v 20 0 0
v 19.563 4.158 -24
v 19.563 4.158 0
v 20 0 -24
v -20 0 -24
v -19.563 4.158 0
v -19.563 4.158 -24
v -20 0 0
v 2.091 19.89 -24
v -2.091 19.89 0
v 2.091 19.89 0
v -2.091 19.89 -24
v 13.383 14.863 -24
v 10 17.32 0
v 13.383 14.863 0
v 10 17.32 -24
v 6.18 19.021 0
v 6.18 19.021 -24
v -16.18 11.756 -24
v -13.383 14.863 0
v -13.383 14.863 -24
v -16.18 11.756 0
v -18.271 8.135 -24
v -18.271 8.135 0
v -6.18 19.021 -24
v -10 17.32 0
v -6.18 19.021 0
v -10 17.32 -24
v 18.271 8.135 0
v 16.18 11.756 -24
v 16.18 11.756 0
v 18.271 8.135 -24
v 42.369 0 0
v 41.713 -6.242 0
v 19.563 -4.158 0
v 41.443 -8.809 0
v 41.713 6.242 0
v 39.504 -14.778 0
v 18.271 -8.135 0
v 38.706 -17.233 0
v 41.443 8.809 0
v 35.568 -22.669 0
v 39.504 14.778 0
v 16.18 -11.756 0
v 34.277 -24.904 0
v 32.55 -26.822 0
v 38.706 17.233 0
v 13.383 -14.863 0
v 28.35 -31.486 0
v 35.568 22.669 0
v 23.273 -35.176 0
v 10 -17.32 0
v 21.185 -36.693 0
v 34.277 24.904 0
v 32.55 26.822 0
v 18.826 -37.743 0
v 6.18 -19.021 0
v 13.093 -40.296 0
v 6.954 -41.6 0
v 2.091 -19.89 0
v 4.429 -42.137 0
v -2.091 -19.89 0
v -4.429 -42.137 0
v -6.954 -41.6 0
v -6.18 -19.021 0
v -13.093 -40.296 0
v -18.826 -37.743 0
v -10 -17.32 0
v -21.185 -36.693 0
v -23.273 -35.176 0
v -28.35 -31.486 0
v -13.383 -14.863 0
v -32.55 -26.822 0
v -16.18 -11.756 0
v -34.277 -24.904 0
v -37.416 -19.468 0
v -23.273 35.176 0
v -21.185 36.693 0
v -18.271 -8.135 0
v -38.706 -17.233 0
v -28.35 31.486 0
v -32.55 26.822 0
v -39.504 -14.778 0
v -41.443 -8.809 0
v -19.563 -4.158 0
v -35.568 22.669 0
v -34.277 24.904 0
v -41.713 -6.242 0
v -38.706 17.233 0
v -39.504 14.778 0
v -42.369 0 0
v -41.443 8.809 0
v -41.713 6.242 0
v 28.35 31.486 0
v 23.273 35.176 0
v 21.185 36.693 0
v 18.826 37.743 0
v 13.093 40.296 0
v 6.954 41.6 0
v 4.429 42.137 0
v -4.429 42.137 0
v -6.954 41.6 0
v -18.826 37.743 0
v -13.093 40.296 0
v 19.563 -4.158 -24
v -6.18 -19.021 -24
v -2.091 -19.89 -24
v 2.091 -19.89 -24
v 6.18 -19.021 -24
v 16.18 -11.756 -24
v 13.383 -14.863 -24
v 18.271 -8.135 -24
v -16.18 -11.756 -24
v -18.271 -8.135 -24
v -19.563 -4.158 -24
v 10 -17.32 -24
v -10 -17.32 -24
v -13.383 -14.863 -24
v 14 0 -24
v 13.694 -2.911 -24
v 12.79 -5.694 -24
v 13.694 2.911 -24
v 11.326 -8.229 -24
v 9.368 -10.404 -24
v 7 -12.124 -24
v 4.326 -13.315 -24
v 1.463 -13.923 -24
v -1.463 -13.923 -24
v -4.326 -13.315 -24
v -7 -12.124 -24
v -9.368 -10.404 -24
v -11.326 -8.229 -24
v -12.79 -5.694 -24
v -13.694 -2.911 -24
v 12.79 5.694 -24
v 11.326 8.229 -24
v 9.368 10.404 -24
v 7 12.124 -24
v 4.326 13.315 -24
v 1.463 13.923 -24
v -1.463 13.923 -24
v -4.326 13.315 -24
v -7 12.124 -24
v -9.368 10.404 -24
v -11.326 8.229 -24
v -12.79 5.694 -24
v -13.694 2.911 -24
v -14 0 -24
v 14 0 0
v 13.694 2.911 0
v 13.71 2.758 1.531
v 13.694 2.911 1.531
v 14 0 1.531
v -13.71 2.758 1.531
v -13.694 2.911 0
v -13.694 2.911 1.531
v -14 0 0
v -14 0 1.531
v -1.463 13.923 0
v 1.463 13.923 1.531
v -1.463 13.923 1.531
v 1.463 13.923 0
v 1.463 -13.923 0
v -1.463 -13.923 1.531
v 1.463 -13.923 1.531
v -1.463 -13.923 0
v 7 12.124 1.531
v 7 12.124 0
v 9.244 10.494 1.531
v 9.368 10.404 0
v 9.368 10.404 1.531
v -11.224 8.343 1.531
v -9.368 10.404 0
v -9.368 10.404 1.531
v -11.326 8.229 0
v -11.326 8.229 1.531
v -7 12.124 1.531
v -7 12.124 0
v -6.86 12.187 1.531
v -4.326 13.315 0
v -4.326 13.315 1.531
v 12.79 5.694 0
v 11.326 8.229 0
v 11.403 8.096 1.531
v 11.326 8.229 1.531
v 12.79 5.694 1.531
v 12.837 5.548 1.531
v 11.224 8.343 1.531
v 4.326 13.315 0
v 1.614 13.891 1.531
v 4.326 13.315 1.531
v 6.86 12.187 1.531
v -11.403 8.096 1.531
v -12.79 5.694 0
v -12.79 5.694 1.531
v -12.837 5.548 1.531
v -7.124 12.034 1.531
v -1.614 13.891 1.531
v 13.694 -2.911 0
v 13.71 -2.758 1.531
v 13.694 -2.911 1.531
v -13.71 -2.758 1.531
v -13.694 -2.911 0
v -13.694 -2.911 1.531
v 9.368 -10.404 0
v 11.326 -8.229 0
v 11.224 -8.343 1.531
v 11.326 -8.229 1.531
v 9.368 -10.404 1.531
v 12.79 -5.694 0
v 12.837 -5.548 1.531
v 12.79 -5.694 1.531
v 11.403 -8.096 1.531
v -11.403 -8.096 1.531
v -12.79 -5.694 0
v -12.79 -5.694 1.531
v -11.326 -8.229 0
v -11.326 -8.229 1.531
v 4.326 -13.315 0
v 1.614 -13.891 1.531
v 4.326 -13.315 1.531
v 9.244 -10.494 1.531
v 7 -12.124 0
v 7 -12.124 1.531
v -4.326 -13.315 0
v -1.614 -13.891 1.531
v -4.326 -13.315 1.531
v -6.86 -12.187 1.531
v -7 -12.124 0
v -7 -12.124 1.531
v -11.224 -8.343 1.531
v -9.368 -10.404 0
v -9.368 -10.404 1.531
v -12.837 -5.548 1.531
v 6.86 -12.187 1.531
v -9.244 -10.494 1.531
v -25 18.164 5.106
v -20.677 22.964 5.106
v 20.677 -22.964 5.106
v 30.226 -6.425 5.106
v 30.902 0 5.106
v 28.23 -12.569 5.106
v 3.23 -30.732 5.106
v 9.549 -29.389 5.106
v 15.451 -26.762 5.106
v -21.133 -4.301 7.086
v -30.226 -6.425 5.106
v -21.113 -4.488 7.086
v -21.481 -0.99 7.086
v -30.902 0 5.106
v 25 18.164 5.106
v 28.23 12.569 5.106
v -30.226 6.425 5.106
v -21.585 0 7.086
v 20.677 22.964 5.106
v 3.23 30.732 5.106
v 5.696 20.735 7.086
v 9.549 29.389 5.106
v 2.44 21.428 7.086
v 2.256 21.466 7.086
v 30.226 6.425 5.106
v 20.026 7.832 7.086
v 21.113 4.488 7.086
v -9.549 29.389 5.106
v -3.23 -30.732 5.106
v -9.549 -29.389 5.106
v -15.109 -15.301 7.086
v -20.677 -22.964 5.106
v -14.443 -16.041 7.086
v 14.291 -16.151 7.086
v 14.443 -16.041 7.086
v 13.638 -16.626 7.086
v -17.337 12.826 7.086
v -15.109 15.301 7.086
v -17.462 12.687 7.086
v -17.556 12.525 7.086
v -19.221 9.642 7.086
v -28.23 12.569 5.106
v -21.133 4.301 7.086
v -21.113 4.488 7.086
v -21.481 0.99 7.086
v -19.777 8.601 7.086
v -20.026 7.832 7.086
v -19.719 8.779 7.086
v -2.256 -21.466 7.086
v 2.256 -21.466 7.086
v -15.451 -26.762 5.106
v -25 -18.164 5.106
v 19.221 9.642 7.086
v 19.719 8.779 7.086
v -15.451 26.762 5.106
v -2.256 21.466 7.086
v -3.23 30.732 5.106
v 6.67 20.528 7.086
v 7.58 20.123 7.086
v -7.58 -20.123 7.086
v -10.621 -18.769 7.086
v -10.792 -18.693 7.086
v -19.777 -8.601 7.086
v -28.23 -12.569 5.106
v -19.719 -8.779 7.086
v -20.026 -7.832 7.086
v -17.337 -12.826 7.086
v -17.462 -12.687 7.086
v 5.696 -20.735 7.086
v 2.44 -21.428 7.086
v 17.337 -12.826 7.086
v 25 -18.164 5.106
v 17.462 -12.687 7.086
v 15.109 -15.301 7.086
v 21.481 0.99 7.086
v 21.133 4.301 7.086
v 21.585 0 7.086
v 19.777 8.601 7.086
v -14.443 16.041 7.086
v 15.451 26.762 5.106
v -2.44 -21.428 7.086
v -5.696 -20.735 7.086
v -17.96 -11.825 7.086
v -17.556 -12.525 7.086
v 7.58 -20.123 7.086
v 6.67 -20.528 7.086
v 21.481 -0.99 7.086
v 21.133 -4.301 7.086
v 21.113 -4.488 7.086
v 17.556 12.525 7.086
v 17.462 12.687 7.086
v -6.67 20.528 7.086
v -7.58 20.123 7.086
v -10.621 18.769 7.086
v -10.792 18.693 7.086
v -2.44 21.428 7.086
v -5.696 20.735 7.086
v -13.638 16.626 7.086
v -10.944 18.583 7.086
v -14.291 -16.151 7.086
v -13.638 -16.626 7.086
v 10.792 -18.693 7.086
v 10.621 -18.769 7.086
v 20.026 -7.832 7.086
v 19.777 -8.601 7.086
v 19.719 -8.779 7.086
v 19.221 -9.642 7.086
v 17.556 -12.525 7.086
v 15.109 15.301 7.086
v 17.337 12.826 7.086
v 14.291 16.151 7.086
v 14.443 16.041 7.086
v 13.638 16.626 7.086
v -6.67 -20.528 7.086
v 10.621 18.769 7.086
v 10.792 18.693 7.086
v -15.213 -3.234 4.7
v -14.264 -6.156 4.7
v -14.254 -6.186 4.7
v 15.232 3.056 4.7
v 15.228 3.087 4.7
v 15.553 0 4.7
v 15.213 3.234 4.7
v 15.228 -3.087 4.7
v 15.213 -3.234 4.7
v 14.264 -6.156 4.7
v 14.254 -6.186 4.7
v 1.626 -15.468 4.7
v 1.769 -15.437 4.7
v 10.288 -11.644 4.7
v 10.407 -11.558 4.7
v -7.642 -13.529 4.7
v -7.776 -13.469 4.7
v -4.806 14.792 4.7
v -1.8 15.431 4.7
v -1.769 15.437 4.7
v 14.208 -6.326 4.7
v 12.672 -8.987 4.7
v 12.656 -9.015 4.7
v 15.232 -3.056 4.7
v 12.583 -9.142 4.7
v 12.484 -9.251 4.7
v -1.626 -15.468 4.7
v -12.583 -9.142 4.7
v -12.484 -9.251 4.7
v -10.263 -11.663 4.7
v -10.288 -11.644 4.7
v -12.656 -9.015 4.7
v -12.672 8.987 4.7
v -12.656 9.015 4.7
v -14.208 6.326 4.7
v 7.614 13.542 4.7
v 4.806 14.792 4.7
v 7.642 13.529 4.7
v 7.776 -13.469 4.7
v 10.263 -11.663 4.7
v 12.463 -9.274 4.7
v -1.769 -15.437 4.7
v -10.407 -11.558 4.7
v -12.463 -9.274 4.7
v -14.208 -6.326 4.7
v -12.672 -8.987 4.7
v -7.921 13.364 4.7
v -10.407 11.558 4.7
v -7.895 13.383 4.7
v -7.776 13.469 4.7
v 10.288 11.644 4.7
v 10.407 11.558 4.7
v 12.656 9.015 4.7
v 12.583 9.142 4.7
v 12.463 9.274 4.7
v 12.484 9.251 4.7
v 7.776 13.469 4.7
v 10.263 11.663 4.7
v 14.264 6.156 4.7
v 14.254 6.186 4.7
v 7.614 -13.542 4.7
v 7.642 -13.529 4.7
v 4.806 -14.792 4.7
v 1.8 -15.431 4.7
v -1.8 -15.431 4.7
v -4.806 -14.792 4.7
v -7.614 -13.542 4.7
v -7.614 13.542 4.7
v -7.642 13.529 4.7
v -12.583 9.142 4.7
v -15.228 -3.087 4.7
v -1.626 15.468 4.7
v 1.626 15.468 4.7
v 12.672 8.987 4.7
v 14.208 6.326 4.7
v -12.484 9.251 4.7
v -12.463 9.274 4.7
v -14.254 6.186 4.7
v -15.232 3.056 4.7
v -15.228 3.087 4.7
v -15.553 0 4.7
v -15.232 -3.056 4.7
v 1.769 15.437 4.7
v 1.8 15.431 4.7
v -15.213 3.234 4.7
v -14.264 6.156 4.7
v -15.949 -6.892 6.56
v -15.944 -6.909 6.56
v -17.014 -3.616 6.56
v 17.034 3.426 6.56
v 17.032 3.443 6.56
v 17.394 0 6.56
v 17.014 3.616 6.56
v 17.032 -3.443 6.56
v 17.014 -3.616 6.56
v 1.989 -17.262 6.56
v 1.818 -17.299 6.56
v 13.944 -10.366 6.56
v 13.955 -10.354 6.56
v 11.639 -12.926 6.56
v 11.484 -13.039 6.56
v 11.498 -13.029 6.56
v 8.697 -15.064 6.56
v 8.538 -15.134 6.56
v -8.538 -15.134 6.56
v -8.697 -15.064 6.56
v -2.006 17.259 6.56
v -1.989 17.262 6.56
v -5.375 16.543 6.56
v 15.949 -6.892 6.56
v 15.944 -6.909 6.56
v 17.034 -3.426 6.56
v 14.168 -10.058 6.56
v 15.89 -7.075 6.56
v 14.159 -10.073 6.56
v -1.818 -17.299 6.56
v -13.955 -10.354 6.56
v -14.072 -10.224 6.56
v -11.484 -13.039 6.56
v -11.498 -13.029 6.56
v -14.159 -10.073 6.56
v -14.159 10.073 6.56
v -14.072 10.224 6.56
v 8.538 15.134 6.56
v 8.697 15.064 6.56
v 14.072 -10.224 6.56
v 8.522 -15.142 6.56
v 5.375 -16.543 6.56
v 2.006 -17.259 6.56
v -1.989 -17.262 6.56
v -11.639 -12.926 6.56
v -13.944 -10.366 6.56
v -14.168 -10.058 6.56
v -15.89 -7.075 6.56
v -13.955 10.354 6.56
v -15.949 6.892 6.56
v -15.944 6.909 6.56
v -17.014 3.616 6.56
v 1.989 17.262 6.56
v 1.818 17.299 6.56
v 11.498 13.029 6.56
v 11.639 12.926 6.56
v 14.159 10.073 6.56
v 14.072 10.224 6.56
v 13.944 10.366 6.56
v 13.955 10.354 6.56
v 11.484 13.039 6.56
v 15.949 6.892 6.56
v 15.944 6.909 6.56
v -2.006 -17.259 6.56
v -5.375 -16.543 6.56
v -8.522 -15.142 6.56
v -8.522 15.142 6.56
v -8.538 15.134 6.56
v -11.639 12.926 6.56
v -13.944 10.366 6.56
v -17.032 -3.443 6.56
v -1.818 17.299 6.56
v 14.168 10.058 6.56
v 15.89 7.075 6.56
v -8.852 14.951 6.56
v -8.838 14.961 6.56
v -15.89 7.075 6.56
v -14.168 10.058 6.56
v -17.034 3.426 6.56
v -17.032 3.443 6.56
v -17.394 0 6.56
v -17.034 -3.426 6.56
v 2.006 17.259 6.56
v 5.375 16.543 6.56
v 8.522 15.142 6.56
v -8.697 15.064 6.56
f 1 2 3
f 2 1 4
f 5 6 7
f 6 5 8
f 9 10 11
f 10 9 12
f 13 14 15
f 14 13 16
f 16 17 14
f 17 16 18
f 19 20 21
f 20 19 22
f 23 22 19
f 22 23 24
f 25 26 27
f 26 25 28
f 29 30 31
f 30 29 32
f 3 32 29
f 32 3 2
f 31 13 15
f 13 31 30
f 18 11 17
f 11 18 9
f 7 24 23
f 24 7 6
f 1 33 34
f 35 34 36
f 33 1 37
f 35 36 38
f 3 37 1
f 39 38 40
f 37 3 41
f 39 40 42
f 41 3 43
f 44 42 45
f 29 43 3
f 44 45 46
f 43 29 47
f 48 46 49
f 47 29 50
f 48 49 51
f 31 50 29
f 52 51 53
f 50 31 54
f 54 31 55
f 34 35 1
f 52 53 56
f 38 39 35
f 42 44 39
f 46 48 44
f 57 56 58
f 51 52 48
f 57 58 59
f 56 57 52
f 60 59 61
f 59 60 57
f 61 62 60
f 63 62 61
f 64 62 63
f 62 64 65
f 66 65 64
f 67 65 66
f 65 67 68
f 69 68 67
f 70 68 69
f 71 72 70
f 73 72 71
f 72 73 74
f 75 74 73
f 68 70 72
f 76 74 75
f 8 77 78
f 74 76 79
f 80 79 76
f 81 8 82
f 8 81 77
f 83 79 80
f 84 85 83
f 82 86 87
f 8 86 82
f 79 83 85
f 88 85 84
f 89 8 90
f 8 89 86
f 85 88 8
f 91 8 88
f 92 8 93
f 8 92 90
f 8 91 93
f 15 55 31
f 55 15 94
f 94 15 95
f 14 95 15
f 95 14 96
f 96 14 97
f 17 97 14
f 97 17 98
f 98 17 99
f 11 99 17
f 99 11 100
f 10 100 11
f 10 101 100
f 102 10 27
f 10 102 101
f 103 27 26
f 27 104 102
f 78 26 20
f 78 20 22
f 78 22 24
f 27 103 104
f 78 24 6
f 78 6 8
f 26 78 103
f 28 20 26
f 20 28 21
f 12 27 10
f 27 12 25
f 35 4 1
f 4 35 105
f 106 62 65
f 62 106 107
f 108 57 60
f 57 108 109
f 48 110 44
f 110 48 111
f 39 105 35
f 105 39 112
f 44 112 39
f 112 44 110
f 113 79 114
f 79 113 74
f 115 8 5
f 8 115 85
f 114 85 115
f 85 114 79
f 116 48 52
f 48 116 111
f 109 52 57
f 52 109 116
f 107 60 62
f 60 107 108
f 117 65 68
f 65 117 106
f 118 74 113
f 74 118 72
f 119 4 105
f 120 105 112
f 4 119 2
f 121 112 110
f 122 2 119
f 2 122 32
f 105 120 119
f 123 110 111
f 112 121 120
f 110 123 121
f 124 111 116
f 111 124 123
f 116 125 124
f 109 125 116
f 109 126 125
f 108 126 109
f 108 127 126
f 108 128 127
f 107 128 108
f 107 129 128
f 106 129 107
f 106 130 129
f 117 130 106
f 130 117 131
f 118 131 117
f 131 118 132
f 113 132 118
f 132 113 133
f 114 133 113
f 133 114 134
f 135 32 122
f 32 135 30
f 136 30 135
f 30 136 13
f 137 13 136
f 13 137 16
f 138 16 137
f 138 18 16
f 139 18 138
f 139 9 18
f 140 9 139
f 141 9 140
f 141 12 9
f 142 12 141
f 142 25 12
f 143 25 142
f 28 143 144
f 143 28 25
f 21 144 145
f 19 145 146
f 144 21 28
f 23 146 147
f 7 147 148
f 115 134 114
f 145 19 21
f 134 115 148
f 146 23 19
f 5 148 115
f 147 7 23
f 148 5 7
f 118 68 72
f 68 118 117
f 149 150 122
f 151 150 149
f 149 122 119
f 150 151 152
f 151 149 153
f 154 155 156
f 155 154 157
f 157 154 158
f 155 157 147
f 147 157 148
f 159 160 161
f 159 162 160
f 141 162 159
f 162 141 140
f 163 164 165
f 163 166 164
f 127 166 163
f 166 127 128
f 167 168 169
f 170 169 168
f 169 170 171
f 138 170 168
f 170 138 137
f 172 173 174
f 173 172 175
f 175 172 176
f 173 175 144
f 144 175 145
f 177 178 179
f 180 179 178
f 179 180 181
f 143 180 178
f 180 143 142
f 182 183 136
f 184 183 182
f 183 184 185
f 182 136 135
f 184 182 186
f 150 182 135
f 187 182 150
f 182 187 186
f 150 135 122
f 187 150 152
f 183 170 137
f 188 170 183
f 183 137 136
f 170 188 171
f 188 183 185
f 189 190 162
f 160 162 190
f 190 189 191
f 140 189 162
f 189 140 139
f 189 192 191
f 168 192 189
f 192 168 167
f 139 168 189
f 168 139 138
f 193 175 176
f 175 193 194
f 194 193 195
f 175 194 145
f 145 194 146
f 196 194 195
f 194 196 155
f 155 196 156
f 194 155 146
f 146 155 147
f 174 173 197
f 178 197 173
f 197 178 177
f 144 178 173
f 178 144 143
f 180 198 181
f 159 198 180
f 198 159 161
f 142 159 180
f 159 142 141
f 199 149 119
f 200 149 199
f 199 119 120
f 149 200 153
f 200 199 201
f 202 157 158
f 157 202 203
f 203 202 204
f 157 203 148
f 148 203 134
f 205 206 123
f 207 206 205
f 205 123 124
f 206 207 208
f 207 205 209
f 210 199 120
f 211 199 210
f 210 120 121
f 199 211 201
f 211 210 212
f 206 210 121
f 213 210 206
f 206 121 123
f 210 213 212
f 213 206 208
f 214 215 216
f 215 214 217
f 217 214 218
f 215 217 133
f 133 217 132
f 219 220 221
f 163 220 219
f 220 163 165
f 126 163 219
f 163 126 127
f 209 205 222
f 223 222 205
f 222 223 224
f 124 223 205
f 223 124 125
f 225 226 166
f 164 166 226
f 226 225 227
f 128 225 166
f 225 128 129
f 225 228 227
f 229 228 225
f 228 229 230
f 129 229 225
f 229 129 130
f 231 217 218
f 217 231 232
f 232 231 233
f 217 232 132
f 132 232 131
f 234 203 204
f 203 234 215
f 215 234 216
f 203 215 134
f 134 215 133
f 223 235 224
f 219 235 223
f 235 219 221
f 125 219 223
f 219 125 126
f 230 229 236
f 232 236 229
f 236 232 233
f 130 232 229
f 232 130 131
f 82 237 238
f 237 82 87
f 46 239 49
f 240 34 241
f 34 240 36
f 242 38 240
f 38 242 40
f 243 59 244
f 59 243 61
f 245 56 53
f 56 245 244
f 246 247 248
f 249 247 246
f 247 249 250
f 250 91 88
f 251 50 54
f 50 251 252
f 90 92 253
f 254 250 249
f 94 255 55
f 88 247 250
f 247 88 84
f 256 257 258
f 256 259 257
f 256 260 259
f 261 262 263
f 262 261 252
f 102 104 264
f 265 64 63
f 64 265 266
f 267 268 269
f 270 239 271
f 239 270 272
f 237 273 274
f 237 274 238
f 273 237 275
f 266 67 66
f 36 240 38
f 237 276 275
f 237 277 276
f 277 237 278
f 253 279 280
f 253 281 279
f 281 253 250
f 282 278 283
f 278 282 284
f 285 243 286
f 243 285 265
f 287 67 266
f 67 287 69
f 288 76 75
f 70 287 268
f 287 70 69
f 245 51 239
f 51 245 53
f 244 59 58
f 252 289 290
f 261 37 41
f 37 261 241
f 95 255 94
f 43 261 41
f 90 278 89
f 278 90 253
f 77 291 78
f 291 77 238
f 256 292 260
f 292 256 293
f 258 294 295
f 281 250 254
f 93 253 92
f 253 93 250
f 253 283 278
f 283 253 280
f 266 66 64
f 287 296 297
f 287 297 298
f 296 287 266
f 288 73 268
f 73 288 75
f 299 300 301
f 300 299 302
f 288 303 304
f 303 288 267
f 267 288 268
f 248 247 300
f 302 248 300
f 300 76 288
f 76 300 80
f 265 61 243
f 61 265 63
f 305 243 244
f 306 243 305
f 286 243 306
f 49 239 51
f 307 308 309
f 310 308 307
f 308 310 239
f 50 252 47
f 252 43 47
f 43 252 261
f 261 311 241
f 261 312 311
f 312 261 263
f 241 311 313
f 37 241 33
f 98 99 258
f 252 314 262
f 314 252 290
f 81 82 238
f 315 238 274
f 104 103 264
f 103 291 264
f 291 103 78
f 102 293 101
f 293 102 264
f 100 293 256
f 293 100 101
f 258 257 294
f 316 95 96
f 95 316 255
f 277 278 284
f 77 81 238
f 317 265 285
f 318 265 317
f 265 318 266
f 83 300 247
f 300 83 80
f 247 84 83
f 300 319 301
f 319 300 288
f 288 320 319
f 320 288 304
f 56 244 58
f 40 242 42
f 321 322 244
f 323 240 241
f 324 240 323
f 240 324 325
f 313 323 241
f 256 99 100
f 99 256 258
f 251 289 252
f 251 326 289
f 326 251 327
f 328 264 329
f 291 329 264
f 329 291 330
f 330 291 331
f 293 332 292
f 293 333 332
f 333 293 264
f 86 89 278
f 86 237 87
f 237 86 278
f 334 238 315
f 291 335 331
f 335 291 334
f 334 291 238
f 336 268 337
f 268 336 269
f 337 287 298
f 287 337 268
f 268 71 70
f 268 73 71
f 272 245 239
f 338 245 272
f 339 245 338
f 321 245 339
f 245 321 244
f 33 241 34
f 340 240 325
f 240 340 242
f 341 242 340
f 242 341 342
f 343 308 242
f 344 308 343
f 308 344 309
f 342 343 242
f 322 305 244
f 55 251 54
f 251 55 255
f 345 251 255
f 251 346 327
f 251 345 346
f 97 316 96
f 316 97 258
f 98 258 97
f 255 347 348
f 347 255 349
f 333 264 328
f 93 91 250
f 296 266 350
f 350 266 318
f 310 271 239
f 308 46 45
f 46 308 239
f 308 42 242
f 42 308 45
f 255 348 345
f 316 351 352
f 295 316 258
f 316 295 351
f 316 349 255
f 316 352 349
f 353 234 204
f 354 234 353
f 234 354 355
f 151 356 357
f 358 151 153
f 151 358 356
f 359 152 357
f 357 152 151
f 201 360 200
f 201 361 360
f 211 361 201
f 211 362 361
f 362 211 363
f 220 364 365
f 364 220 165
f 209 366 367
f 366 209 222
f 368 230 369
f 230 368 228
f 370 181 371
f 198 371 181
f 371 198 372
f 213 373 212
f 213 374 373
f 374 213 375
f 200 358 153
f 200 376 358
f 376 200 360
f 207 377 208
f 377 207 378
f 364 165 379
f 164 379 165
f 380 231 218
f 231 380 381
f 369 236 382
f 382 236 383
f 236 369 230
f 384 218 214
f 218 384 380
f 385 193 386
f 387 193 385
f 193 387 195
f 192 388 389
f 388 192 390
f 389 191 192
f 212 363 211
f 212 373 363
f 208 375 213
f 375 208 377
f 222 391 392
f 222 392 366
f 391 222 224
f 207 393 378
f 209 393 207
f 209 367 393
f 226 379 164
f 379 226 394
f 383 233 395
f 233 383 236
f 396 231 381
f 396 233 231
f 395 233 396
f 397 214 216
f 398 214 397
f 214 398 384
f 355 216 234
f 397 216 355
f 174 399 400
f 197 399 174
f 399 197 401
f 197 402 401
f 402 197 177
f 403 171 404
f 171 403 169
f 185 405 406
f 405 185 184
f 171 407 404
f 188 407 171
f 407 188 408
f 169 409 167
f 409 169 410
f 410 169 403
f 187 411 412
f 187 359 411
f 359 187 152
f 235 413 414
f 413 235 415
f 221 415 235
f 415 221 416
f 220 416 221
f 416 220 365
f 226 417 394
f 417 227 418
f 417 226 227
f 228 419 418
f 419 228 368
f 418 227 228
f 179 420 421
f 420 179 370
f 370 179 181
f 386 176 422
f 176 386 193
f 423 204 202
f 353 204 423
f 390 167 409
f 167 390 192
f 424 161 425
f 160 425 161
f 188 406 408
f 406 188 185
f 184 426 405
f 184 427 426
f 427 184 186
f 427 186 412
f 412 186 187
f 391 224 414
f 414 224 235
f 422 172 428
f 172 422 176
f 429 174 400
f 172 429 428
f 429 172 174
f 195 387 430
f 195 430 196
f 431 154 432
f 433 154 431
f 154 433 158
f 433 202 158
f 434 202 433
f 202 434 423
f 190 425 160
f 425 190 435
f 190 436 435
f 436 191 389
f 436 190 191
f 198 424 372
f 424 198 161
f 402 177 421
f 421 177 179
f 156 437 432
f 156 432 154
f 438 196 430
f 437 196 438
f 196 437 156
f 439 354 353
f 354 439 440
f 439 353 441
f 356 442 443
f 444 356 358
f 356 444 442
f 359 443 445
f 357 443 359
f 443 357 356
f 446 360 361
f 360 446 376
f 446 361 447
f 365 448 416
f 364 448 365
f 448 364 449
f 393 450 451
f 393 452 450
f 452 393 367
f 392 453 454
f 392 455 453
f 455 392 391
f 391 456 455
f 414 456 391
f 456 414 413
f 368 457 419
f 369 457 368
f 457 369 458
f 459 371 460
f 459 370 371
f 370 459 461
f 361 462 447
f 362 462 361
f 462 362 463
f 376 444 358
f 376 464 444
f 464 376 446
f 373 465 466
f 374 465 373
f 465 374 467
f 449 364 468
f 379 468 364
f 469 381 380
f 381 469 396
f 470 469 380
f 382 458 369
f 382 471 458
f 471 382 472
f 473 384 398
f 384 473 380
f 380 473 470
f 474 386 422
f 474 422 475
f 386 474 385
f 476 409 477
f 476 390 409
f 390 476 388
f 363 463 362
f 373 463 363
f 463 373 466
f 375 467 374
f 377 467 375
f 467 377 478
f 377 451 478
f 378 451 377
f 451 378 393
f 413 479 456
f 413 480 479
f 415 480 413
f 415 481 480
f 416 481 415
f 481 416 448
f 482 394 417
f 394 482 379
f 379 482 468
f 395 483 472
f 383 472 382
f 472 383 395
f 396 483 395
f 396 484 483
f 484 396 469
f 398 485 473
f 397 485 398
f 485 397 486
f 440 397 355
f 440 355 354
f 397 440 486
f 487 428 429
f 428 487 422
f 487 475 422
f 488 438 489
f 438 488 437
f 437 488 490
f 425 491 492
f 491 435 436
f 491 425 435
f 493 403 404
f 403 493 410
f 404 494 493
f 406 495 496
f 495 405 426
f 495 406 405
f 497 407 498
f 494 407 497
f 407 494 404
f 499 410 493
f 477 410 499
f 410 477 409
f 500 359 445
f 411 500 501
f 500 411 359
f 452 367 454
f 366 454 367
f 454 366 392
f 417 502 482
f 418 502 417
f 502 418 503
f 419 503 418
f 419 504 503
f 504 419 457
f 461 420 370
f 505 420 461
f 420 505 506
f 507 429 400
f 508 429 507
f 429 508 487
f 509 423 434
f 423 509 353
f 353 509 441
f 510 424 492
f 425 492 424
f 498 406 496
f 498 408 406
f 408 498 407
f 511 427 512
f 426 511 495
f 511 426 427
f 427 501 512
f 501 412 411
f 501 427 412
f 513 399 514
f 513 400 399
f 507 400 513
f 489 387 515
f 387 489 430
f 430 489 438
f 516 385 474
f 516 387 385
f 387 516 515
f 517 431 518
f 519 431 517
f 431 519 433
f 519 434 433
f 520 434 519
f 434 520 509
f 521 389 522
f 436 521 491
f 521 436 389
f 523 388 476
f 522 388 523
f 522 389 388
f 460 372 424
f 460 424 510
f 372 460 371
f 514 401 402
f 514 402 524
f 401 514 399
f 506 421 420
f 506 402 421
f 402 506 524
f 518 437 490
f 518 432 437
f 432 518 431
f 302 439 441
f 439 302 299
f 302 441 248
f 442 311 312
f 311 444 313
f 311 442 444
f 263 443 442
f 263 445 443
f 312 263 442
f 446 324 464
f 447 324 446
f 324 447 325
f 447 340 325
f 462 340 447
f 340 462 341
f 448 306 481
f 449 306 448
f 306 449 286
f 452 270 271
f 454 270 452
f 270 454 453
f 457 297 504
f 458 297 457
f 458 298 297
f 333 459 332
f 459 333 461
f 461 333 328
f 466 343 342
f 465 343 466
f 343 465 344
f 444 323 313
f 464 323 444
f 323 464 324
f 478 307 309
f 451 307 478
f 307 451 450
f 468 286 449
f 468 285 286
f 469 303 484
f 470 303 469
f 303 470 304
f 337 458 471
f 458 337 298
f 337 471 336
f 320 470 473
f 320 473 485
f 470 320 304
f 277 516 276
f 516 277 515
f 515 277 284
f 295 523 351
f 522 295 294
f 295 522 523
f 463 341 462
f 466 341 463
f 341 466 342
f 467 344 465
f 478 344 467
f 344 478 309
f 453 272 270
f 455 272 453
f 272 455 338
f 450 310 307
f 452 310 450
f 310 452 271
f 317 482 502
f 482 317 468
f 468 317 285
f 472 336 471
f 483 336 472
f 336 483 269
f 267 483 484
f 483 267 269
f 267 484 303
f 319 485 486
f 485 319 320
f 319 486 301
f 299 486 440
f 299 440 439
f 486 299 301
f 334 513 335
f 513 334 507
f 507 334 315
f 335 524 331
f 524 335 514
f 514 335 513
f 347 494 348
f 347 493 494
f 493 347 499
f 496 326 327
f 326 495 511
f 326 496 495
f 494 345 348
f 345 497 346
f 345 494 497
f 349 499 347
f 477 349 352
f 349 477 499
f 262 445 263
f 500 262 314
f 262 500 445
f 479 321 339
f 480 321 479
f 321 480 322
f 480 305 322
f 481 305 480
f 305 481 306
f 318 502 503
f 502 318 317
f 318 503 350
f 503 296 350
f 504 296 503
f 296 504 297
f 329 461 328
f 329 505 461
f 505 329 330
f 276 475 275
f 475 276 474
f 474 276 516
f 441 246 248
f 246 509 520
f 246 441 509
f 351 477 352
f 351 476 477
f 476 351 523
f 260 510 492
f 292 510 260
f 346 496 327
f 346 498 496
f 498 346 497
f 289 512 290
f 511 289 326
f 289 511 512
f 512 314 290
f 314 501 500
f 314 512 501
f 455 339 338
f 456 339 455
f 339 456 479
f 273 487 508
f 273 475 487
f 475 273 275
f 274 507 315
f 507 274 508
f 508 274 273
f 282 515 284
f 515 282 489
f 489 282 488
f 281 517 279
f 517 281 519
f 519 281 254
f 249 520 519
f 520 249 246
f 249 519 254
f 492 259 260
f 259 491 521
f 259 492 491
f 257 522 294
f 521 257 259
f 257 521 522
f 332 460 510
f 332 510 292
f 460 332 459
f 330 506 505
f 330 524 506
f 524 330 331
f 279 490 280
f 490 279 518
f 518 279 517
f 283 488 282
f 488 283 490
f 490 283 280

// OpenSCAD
sphereSize = 100;

difference(){
translate([0,0,-90])
	sphere(sphereSize,10);

translate([0,0,sphereSize -(sphereSize/.50)] )
	cylinder(h = sphereSize*2, r=sphereSize,center=true);
	
translate([0,0,sphereSize -(sphereSize/.50)])
	cylinder(h=sphereSize*3, r=14, center=true);
	
translate([0,0,sphereSize-75])
	cylinder(h=sphereSize, r1=1, r2=50, center=true);

translate([0,0,sphereSize-60])
	cylinder(h=sphereSize, r1=1, r2=100, center=true);
	
translate([0,0,sphereSize-83])
	cylinder(h=sphereSize*.25, r1=1, r2=200, center=true);
}
difference(){
	translate([0,0,-12])
		cylinder(h=24, r=20, center=true);
	translate([0,0,sphereSize -(sphereSize/.50)])
		cylinder(h=sphereSize*3, r=14, center=true);
}
